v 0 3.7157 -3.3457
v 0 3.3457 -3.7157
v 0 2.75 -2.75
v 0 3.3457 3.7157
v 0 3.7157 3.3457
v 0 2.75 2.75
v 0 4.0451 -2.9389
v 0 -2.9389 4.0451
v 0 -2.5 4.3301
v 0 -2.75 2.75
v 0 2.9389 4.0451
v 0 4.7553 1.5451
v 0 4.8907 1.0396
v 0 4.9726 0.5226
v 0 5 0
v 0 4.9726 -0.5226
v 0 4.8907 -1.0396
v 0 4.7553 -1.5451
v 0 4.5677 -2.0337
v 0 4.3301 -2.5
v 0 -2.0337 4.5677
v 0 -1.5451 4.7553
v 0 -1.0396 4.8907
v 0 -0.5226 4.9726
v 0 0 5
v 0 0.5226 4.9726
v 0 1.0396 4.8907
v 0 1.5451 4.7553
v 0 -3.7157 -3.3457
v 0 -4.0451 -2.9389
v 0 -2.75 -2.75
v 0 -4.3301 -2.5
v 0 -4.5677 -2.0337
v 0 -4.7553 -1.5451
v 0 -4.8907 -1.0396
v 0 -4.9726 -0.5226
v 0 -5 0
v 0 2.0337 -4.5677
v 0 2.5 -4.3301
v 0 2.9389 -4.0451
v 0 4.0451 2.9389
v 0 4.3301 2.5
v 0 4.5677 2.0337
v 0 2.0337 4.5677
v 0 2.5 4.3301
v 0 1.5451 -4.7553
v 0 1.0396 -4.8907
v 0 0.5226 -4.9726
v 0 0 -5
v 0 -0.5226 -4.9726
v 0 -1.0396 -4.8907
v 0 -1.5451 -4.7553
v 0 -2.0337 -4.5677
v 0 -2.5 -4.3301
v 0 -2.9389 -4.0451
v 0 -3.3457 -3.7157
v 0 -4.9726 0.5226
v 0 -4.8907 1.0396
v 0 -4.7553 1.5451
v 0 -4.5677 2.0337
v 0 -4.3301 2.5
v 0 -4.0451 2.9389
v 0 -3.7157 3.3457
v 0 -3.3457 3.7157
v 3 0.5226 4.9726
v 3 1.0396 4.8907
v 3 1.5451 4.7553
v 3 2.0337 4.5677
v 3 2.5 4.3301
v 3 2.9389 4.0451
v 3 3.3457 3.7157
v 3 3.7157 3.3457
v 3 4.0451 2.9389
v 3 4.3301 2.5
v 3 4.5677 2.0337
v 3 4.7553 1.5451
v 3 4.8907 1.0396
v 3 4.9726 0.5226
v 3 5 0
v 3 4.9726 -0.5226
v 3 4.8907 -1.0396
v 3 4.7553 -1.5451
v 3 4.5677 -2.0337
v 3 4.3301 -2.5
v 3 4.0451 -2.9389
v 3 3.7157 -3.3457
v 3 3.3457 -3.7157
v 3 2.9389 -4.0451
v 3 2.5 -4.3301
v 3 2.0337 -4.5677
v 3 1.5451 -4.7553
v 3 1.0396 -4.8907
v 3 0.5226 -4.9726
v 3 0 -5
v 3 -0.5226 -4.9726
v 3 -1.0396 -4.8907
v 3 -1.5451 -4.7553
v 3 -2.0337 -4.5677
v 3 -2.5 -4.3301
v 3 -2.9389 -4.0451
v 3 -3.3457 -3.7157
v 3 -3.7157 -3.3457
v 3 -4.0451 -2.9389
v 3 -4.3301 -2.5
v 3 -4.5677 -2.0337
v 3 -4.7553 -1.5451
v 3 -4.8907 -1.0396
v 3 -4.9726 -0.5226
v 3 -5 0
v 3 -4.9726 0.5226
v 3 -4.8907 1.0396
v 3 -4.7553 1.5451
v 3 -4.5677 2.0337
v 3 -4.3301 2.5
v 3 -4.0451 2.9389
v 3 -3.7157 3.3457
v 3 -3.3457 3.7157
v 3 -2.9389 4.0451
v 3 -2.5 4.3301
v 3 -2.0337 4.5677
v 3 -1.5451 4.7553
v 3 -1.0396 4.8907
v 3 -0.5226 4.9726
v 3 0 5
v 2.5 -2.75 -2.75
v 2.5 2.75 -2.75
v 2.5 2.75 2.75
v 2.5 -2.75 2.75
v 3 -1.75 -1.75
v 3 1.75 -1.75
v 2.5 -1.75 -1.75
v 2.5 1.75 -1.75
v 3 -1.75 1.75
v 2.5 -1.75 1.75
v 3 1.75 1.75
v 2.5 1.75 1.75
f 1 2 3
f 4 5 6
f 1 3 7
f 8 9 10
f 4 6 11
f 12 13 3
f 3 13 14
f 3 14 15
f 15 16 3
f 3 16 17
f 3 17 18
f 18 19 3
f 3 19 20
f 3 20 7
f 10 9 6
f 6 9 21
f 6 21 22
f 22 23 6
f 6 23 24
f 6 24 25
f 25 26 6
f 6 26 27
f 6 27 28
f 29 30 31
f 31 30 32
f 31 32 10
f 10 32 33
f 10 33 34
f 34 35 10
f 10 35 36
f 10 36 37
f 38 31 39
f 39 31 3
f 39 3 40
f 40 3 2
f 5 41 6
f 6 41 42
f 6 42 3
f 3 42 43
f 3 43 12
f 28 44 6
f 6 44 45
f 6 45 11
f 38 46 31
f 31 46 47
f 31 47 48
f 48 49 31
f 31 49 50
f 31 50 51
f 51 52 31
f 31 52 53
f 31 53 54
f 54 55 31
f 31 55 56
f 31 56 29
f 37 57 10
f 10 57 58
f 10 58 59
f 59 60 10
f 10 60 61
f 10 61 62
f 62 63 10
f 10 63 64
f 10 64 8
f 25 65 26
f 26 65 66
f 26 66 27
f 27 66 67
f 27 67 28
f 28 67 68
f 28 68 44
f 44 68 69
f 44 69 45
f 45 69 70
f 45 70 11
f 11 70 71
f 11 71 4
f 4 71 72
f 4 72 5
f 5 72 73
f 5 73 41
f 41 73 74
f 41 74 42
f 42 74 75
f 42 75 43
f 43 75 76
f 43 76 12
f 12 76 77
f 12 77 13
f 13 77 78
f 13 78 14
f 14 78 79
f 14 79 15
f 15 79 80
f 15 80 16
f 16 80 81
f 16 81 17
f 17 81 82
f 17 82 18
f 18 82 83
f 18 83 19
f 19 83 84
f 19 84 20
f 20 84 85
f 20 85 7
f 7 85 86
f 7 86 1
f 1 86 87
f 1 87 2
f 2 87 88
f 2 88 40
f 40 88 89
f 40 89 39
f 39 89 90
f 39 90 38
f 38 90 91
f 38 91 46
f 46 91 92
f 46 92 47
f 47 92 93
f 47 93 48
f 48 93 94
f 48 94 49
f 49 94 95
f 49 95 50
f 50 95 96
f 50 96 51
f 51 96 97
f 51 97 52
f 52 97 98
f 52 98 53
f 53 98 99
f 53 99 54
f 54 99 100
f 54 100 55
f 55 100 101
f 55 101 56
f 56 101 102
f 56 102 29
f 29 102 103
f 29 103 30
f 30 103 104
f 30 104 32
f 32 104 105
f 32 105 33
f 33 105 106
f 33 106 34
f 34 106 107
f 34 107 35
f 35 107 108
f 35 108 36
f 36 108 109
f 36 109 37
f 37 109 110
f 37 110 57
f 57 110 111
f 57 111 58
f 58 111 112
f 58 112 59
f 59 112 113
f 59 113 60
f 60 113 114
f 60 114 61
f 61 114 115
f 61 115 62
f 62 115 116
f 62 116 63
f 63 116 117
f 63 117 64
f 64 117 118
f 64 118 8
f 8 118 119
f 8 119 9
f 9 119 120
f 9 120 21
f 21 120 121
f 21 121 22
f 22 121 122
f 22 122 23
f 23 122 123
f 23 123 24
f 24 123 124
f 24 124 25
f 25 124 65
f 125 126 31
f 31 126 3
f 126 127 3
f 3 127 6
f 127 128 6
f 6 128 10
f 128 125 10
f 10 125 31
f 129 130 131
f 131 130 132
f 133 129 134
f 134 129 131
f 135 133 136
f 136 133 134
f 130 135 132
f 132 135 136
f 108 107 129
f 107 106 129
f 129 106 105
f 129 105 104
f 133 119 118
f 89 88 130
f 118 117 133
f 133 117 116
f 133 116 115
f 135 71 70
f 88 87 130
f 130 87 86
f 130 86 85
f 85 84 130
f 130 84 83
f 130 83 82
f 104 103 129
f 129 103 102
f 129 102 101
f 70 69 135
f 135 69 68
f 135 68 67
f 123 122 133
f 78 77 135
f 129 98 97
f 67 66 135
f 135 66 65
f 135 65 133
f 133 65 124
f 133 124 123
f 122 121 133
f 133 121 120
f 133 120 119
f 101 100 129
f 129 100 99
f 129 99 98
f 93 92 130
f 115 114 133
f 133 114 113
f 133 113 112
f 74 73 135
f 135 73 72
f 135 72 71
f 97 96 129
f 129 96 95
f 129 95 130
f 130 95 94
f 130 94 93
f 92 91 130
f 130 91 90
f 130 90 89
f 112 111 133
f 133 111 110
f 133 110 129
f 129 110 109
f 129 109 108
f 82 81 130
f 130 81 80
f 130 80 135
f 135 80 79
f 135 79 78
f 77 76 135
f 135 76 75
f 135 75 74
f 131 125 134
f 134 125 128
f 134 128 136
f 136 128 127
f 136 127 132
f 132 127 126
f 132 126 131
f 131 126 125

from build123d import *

# Parameters (mm, degrees)
SKETCH_1_R      = 5
SKETCH_1_W      = 5.5
SKETCH_1_H      = 5.5
EXTRUDE_1_DEPTH = 2.5
SKETCH_3_R      = 5
SKETCH_3_W      = 3.5
SKETCH_3_H      = 3.5
EXTRUDE_3_DEPTH = 0.5


with BuildPart() as part:
    # 草图1 → 凸台-拉伸1 (new body)
    with BuildSketch(Plane(origin=(0, 0, 0), x_dir=(0, 0, -1), z_dir=(1, 0, 0))):
        Circle(SKETCH_1_R)
        Rectangle(SKETCH_1_W, SKETCH_1_H, mode=Mode.SUBTRACT)
    extrude(amount=EXTRUDE_1_DEPTH)

    # 草图3 → 凸台-拉伸3 (add)
    with BuildSketch(Plane(origin=(2.5, 0, 0), x_dir=(0, 0, -1), z_dir=(1, 0, 0))):
        Circle(SKETCH_3_R)
        Rectangle(SKETCH_3_W, SKETCH_3_H, mode=Mode.SUBTRACT)
    extrude(amount=EXTRUDE_3_DEPTH)


solid = part.part
